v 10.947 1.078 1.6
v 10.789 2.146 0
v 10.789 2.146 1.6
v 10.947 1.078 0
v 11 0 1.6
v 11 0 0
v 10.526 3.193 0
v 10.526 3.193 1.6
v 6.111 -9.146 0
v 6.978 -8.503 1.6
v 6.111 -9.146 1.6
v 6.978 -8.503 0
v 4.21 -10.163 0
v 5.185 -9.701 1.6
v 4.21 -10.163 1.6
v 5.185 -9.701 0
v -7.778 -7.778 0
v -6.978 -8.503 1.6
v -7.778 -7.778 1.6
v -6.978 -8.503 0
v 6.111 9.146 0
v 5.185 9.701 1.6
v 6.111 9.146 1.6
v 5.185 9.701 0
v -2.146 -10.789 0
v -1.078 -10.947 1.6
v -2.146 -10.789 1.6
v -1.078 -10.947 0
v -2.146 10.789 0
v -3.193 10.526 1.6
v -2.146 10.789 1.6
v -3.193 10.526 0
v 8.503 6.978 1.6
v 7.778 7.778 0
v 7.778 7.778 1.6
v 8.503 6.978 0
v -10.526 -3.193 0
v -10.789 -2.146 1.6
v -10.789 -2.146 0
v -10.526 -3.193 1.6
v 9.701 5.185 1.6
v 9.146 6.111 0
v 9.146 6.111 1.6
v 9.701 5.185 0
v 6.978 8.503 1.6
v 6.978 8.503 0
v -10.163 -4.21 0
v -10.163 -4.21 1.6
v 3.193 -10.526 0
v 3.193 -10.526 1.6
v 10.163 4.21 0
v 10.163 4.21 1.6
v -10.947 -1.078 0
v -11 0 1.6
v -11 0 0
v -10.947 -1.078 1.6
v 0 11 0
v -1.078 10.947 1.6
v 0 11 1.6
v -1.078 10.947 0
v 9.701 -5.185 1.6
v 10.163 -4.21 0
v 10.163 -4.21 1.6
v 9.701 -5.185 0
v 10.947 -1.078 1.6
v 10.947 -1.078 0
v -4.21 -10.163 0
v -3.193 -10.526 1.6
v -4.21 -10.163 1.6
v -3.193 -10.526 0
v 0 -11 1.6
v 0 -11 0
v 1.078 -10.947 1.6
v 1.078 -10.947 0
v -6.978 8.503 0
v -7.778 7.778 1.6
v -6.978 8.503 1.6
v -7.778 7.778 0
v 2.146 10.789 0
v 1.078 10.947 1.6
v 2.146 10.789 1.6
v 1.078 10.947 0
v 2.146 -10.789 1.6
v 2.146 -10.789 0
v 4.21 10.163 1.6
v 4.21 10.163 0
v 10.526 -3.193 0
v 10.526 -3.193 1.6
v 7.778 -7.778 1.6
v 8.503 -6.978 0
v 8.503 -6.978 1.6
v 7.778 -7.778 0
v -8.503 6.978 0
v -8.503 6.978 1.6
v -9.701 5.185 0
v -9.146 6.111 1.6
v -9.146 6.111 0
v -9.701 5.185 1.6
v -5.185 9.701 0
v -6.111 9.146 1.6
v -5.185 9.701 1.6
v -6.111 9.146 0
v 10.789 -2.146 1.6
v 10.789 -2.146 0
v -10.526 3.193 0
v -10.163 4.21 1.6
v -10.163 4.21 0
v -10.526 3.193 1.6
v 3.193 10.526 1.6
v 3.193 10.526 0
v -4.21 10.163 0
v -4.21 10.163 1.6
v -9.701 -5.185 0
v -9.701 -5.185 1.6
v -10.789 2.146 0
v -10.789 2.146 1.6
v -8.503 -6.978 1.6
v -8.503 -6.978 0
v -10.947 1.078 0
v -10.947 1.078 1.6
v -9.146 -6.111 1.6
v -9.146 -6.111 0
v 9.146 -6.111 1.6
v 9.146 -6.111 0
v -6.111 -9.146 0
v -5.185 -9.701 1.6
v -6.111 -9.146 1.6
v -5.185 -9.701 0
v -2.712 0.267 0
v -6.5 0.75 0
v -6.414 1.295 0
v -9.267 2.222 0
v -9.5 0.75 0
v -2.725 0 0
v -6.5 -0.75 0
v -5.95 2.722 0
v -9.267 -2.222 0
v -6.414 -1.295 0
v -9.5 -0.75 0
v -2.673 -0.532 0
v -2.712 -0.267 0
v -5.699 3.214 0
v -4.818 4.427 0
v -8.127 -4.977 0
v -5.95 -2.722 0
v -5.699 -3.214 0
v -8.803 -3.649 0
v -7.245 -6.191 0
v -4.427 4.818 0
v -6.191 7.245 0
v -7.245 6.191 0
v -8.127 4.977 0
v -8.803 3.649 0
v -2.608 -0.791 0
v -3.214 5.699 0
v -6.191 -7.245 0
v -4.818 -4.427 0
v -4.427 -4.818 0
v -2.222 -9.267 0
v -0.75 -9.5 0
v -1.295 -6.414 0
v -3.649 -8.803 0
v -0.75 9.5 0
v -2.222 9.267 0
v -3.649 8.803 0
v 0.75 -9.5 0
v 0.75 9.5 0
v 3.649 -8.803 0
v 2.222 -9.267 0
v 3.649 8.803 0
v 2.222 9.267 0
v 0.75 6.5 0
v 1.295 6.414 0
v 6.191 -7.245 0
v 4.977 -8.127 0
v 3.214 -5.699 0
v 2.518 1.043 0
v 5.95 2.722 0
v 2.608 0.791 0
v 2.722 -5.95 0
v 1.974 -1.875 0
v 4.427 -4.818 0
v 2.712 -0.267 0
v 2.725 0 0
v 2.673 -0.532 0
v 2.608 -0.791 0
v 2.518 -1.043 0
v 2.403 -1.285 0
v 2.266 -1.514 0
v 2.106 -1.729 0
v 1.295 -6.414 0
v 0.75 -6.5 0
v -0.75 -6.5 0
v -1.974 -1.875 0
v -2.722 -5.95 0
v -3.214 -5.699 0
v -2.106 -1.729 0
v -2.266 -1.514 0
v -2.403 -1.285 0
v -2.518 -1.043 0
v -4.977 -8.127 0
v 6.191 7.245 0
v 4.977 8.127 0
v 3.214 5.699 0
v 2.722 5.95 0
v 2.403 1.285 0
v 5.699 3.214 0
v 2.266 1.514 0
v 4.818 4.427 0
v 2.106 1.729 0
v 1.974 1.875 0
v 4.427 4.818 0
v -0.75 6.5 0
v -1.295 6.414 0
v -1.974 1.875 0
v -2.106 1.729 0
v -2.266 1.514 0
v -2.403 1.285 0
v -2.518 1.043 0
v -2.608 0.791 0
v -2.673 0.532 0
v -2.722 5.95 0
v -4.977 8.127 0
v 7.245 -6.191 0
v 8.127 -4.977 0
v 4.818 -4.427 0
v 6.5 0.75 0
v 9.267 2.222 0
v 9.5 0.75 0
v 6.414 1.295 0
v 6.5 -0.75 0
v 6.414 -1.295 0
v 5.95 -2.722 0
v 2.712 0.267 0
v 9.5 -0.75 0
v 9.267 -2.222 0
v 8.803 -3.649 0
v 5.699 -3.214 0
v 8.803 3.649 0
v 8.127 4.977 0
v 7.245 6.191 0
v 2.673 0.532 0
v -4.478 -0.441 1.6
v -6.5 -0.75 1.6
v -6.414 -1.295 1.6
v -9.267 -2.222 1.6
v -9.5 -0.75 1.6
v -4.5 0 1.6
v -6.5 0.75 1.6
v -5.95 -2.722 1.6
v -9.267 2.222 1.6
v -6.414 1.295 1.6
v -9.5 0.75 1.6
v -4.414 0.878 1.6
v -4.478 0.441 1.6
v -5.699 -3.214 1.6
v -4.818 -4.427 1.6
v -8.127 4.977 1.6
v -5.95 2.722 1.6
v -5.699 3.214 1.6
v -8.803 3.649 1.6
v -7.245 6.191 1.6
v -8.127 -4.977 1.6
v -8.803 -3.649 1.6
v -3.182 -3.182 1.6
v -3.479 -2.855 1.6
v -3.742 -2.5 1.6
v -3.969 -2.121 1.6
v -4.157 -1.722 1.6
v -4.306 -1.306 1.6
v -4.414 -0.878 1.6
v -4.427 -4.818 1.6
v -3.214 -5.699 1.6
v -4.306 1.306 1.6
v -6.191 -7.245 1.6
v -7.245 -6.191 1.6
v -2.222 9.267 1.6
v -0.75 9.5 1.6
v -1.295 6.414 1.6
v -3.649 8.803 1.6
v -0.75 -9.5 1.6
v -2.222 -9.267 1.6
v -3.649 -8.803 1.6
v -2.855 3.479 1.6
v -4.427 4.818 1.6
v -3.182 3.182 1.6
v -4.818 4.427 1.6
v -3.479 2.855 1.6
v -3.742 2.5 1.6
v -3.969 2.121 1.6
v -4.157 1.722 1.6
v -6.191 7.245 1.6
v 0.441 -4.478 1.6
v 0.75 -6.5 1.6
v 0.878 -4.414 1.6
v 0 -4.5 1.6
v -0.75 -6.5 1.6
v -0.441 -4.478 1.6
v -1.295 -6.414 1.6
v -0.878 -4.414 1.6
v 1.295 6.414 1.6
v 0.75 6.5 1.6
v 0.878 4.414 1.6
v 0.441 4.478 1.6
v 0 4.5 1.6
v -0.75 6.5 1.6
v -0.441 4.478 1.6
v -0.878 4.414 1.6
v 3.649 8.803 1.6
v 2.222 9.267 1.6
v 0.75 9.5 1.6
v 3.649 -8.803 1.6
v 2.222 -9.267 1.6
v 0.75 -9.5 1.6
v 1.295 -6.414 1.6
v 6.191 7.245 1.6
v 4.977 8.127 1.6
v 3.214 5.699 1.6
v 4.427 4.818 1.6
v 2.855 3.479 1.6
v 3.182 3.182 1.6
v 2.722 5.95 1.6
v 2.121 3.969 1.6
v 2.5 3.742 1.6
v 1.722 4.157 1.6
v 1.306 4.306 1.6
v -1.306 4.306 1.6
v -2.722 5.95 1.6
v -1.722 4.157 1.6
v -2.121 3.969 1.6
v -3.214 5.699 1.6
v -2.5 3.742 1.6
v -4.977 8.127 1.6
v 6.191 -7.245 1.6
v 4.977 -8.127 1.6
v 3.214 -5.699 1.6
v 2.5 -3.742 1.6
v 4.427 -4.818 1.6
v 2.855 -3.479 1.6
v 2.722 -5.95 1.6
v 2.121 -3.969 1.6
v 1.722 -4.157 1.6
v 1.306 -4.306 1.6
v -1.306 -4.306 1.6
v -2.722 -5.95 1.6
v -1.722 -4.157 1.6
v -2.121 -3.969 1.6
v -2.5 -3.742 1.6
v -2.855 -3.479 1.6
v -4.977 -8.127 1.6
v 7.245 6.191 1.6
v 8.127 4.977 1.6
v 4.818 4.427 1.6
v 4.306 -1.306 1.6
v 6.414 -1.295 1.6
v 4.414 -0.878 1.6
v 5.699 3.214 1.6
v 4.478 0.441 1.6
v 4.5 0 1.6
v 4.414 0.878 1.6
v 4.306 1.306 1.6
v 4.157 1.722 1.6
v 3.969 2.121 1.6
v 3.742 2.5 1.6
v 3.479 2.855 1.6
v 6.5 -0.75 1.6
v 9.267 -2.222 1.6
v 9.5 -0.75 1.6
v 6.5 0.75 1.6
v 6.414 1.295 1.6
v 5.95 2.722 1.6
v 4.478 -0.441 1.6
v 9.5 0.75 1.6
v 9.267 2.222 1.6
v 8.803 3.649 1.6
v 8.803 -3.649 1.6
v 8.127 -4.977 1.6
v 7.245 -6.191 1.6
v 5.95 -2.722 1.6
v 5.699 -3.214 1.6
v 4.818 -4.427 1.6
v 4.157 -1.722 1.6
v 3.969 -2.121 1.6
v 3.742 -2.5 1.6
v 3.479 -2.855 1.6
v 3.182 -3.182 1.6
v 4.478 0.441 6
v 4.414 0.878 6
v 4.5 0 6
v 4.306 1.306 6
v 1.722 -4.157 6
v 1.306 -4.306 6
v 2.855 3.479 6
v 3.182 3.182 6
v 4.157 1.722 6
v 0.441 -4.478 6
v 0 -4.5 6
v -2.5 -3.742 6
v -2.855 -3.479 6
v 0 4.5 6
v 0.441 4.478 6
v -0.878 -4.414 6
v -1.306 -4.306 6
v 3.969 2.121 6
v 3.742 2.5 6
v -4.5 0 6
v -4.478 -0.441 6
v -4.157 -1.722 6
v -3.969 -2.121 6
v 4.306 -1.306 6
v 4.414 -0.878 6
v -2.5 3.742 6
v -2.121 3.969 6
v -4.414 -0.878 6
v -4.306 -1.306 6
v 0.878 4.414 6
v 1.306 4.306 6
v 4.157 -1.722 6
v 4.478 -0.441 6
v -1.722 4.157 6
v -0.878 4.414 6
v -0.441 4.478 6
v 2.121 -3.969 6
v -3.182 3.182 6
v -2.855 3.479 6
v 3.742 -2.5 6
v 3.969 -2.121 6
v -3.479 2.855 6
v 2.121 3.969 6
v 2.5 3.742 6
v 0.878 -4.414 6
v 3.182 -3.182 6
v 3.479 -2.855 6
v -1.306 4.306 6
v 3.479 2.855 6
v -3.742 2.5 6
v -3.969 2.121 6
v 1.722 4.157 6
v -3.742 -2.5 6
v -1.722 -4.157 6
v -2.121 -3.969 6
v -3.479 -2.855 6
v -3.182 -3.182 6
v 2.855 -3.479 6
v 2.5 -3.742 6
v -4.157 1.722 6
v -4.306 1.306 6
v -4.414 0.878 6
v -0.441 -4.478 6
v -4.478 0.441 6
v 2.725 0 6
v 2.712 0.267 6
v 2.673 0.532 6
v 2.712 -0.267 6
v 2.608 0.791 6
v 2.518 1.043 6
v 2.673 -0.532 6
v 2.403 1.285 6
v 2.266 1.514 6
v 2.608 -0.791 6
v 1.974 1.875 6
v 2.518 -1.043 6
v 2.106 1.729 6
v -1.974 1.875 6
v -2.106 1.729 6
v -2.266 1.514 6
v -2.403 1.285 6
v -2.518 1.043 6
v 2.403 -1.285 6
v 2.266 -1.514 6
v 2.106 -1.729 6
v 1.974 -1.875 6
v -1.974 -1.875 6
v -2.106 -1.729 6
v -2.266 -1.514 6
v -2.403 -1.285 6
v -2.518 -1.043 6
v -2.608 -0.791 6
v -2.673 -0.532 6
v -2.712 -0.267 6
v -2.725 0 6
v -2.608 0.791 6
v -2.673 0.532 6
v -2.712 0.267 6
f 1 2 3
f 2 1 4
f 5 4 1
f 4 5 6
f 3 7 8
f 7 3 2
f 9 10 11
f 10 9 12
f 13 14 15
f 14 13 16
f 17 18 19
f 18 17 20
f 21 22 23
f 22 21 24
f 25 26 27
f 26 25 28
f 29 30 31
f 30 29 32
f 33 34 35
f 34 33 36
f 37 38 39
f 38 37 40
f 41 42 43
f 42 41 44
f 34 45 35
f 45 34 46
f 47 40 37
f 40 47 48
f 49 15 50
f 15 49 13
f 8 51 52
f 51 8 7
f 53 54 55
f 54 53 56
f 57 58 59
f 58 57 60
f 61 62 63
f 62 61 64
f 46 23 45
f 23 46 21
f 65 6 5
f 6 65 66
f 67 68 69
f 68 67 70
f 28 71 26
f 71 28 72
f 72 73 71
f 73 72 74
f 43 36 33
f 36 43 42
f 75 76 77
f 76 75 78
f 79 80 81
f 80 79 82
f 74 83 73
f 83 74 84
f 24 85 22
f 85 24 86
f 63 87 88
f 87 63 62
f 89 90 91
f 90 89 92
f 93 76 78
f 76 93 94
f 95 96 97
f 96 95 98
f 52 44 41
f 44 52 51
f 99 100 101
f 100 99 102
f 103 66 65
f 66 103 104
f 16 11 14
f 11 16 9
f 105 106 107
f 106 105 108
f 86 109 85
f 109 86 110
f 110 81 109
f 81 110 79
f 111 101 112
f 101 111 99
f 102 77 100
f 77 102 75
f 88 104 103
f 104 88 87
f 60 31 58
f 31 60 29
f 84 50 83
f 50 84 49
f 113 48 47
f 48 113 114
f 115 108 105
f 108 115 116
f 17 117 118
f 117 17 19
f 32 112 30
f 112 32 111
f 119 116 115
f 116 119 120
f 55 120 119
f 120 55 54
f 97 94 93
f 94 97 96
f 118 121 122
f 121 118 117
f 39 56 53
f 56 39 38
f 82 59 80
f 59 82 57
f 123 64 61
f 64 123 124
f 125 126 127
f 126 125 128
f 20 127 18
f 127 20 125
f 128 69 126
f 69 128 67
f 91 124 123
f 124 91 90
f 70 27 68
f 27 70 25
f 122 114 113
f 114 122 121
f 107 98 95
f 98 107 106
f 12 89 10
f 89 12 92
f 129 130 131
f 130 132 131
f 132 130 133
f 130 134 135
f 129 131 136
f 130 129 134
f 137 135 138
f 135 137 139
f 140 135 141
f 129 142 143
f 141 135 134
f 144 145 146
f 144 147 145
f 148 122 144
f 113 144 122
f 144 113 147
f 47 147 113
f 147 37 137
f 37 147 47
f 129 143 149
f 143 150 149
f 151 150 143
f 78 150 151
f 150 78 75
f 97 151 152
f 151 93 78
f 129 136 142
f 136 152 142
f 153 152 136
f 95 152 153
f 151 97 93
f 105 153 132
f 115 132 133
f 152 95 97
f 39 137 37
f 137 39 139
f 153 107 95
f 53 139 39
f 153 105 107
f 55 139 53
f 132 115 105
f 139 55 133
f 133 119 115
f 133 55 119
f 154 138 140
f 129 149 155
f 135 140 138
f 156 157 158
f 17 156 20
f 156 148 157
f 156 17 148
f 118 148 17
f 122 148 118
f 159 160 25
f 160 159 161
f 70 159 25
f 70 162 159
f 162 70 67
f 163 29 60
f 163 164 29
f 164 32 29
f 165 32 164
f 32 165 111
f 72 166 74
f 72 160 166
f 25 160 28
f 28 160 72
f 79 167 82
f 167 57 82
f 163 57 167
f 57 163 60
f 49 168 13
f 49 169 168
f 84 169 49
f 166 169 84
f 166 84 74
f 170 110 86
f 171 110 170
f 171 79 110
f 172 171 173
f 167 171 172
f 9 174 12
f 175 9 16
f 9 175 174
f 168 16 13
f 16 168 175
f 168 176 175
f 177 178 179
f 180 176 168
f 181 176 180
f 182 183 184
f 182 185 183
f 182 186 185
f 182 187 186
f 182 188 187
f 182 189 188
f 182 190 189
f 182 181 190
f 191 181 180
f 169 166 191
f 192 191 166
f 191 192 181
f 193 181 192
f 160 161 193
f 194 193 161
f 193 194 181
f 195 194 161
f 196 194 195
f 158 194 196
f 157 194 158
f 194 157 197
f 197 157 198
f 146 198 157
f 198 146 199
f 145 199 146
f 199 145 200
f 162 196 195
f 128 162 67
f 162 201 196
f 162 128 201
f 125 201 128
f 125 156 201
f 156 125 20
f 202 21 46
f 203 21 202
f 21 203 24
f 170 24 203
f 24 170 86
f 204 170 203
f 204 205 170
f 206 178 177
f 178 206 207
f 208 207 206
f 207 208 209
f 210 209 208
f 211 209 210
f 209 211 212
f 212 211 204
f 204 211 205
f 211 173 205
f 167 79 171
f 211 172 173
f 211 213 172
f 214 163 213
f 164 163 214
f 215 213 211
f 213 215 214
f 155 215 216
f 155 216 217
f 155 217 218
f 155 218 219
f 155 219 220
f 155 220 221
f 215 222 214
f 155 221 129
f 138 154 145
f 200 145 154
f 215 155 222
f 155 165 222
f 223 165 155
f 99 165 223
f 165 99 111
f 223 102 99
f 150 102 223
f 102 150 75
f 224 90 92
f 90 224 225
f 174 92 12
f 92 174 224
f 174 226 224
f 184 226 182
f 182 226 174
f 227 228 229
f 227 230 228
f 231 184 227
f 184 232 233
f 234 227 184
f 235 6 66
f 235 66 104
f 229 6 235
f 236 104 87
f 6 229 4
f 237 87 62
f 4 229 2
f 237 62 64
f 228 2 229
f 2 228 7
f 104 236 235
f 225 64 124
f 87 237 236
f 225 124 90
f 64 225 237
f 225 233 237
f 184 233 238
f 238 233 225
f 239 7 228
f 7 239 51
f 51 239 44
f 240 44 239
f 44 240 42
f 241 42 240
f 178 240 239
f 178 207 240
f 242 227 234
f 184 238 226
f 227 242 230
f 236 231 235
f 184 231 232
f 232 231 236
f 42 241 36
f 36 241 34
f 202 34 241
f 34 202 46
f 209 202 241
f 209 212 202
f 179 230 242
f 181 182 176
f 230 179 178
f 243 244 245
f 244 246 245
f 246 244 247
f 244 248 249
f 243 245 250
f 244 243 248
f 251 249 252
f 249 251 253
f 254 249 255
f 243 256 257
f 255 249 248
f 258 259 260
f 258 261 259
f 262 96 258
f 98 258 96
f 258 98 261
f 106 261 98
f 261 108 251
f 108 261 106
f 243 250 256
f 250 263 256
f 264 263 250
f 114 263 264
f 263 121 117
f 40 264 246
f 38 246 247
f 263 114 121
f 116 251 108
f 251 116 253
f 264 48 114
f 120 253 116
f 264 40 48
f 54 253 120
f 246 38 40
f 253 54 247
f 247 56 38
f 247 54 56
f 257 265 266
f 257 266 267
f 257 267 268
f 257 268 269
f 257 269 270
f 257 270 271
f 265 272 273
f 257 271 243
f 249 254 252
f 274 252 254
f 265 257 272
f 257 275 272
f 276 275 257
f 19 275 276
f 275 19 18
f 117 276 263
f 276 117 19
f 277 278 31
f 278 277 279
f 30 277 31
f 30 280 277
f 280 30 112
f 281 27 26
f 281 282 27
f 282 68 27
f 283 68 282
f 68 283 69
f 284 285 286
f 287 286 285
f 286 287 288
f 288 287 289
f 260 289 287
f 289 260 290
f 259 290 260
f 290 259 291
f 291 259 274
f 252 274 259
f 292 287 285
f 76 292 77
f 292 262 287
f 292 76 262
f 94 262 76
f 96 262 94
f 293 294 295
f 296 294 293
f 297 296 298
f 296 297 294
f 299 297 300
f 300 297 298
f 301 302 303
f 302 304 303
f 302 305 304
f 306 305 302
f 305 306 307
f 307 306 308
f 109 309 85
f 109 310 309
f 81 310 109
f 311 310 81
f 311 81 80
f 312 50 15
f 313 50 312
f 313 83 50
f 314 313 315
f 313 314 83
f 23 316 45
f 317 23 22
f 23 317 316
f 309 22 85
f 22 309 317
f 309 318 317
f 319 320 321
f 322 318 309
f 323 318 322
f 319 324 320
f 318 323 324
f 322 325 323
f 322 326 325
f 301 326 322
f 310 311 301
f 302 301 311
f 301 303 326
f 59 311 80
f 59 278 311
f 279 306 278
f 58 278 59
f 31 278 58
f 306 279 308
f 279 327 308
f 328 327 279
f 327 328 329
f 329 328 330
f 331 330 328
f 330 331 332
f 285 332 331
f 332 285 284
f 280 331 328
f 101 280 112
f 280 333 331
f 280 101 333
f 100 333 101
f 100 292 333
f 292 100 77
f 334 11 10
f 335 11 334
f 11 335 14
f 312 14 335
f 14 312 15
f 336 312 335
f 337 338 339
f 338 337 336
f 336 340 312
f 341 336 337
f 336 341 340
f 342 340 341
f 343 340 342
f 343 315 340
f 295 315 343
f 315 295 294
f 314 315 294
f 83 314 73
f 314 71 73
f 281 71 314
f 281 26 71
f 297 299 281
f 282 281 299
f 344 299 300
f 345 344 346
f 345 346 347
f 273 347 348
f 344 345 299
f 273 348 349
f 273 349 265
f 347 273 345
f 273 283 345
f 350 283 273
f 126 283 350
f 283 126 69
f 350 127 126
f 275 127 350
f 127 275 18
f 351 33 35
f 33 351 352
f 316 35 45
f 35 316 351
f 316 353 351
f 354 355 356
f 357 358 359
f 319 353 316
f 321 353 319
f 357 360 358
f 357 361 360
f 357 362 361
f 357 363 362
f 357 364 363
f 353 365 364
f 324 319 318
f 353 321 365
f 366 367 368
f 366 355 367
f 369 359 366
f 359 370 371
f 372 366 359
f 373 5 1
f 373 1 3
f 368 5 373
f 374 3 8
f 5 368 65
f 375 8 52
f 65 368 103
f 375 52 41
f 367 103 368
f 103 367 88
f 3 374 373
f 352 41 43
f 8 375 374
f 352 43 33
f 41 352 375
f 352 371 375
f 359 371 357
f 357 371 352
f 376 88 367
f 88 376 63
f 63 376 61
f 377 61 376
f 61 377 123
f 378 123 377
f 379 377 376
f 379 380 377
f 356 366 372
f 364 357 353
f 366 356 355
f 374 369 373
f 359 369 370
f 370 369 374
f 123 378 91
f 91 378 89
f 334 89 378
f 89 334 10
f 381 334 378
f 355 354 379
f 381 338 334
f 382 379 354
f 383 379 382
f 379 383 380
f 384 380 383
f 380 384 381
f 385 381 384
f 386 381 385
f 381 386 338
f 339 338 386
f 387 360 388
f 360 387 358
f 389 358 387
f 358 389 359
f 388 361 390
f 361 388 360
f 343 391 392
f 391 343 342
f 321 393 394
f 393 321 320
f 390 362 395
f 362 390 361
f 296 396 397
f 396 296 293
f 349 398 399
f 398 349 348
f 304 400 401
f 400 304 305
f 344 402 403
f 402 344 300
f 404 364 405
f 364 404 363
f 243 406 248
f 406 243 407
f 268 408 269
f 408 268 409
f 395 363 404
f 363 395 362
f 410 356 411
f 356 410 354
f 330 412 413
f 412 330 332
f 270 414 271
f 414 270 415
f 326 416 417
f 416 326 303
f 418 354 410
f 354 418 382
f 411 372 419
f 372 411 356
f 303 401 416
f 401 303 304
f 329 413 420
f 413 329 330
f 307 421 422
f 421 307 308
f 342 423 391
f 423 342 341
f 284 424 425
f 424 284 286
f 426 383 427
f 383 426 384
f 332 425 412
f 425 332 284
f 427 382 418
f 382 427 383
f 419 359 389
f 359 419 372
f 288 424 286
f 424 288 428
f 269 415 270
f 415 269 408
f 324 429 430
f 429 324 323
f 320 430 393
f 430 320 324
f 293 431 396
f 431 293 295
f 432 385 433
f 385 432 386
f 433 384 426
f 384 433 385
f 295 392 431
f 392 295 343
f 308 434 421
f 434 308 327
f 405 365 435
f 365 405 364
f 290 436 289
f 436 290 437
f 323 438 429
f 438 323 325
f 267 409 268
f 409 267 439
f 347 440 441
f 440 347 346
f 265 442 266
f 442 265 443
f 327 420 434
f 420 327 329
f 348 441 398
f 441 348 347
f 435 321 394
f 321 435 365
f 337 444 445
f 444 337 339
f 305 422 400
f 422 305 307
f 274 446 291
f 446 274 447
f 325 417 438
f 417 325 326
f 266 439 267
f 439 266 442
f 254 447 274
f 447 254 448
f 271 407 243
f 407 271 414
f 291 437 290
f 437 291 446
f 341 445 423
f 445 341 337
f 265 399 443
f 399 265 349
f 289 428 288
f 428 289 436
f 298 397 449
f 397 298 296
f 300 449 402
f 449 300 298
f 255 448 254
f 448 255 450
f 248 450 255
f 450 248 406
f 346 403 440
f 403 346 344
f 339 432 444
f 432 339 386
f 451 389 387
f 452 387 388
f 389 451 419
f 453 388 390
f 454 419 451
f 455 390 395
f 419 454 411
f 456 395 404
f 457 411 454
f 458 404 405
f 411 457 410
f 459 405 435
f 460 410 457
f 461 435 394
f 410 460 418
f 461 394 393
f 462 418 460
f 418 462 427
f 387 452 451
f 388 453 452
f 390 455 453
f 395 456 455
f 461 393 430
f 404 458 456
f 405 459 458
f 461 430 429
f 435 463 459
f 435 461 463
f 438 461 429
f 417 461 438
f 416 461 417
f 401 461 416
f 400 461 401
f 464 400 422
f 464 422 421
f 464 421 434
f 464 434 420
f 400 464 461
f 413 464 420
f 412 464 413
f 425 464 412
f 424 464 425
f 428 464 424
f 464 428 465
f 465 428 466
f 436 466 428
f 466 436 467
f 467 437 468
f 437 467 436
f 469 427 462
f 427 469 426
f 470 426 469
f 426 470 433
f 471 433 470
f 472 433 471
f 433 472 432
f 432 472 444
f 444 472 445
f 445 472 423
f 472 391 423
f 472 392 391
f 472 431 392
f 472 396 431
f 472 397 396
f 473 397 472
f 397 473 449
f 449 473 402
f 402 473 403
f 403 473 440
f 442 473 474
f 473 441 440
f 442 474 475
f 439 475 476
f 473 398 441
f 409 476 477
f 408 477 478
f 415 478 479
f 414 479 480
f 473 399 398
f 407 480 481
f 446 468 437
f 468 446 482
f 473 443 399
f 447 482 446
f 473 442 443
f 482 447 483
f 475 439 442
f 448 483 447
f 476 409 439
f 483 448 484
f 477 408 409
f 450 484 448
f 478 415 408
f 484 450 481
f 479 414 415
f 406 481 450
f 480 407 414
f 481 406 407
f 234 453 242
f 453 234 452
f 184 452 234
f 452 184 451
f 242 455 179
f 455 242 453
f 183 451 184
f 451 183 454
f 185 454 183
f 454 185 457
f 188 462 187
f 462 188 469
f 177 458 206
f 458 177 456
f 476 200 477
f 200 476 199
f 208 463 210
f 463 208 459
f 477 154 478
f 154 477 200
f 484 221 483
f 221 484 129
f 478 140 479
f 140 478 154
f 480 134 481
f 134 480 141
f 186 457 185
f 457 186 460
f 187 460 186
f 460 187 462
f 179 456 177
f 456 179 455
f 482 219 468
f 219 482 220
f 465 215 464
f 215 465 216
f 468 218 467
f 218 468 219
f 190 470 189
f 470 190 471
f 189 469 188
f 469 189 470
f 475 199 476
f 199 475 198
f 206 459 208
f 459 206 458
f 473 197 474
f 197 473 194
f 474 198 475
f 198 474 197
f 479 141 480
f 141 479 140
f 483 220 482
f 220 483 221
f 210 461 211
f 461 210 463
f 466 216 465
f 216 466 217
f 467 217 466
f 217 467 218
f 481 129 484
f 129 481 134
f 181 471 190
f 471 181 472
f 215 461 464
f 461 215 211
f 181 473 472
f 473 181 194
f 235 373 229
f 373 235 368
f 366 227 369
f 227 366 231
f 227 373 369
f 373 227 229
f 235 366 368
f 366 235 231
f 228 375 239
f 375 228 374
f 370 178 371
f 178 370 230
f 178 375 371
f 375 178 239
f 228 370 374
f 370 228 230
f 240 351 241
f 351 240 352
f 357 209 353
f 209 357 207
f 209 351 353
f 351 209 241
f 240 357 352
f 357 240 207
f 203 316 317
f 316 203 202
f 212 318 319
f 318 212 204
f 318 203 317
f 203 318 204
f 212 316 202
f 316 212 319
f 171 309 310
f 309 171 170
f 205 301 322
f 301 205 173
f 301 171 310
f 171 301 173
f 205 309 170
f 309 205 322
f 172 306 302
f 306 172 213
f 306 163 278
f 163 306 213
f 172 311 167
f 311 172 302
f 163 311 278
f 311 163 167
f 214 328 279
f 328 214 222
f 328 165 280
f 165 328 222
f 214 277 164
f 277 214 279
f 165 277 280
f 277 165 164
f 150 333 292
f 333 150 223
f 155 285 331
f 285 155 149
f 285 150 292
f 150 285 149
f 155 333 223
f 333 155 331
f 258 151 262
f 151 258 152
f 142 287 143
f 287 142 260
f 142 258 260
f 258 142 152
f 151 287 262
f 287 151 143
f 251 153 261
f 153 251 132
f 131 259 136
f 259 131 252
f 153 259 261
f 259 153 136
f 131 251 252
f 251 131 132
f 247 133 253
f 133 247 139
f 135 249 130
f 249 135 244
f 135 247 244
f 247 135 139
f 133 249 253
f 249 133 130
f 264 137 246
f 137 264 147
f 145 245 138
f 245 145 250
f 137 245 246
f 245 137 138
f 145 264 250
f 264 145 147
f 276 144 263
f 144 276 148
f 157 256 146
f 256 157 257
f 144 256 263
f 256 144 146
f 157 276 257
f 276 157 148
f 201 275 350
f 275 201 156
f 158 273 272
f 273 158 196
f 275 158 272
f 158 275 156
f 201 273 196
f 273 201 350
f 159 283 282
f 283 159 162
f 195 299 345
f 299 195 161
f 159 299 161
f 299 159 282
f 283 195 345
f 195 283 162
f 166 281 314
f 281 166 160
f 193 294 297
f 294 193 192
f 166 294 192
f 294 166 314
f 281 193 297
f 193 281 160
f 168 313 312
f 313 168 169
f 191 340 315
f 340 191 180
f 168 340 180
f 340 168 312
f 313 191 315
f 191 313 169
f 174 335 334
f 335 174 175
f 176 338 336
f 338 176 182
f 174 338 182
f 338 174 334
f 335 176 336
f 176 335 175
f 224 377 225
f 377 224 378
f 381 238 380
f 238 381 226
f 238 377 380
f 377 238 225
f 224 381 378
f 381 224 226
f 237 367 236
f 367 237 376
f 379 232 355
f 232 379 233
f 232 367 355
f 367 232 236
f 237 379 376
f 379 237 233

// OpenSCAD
// file: ../lib.scad
// Solar Rover - shared helper modules
include <config.scad>

// Rounded rectangle plate, centred in XY, sitting on Z=0.
module rbox(size, r=4) {
    x = size[0]; y = size[1]; z = size[2];
    hull() for (sx=[-1,1], sy=[-1,1])
        translate([sx*(x/2-r), sy*(y/2-r), 0]) cylinder(r=r, h=z);
}

// Vertical hole through everything (subtract). Centred on the origin.
module hole(d, h=200) { translate([0,0,-h/2]) cylinder(d=d, h=h); }

// Heat-set insert pocket opening upward at Z=top.
module insert_m3(top) { translate([0,0,top-m3_insert_h]) cylinder(d=m3_insert_d, h=m3_insert_h+0.01); }
module insert_m25(top) { translate([0,0,top-4.5]) cylinder(d=m25_insert_d, h=4.51); }

// Boss for an insert: cylinder from z0 to z1, with insert pocket at the top.
module insert_boss_m3(z0, z1, od=8) {
    difference() {
        translate([0,0,z0]) cylinder(d=od, h=z1-z0);
        insert_m3(z1);
    }
}

// Slot of length l (centre-to-centre) along X, diameter d.
module slot(l, d, h=200) {
    hull() for (sx=[-1,1]) translate([sx*l/2,0,-h/2]) cylinder(d=d, h=h);
}

// Counterbored M3 clearance hole, head at Z=top going down.
module m3_cbore(top, depth=m3_head_h) {
    hole(m3_clear);
    translate([0,0,top-depth]) cylinder(d=m3_head_d, h=depth+50);
}

// Captive hex nut pocket, opening at Z=z (nut goes in from that face).
module m3_nut_pocket(z, depth=m3_nut_h+0.4) {
    translate([0,0,z-depth]) cylinder(d=m3_nut_af/cos(30), h=depth+0.01, $fn=6);
}

// Pair of zip-tie slots (for modules without mounting holes), spaced s apart along X.
module zip_slots(s=30, w=4, l=2.2) {
    for (sx=[-1,1]) translate([sx*s/2,0,0]) cube([l, w, 50], center=true);
}

// D-shaped bore for TT motor shafts.
module d_bore(h=50, extra=0) {
    intersection() {
        cylinder(d=tt_shaft_d+extra, h=h);
        translate([-(tt_shaft_d+extra)/2, -(tt_shaft_flat+extra)/2, 0])
            cube([tt_shaft_d+extra, tt_shaft_flat+extra, h]);
    }
}

// Simple spur gear (trapezoid teeth), module m, z teeth, thickness t. Good enough
// for a slow servo gripper; not a precision involute.
module spur_gear(m=1.25, z=16, t=6, bore=0) {
    rp = m*z/2; ra = rp + m; rf = rp - 1.25*m;
    difference() {
        linear_extrude(t) union() {
            circle(r=rf, $fn=z*4);
            for (i=[0:z-1]) rotate(i*360/z)
                polygon([[rf*cos(-90/z*1.1), rf*sin(-90/z*1.1)],
                         [ra*cos(-90/z*0.45), ra*sin(-90/z*0.45)],
                         [ra*cos( 90/z*0.45), ra*sin( 90/z*0.45)],
                         [rf*cos( 90/z*1.1), rf*sin( 90/z*1.1)]]);
        }
        if (bore > 0) hole(bore);
    }
}

// Servo pocket for an MG996R lying with its output axis along +Z.
// Case centred so the OUTPUT SHAFT is at the origin; case top at Z=0.
module mg996_case_neg(extra=tol) {
    translate([-mg996_shaft_off-extra, -mg996_w/2-extra, -mg996_h-extra])
        cube([mg996_l+2*extra, mg996_w+2*extra, mg996_h+extra+0.01]);
}
module mg996_flange_holes(d=m3_clear, h=60) {
    cx = mg996_l/2 - mg996_shaft_off;
    for (sx=[-1,1], sy=[-1,1])
        translate([cx+sx*mg996_hole_dx/2, sy*mg996_hole_dy/2, -h/2]) cylinder(d=d, h=h);
}
module mg90_case_neg(extra=tol) {
    translate([-mg90_shaft_off-extra, -mg90_w/2-extra, -mg90_h-extra])
        cube([mg90_l+2*extra, mg90_w+2*extra, mg90_h+extra+0.01]);
}
module mg90_flange_holes(d=m2_pilot, h=60) {
    cx = mg90_l/2 - mg90_shaft_off;
    for (sx=[-1,1]) translate([cx+sx*mg90_hole_dx/2, 0, -h/2]) cylinder(d=d, h=h);
}
// Round MG996R horn screw pattern (4 holes) + centre relief.
module mg996_horn_holes(d=m3_clear) {
    hole(9);
    for (a=[0:90:270]) rotate(a) translate([mg996_horn_hole_r,0,0]) hole(d);
}
// file: ../config.scad
// Solar Rover - shared dimensions (all mm)
// Coordinate system: X = forward, Y = left, Z = up. Origin = deck centre, ground at Z=0.
//
// Values marked MEASURE come from typical datasheets/clones and vary between
// suppliers. Measure your parts with calipers and edit them here before printing;
// every part reads its dimensions from this file.

$fn = 64;

// ---------- print / fit ----------
tol        = 0.25;   // general clearance per side
wall       = 2.4;    // default wall (6 perimeters at 0.4 mm nozzle)

// ---------- fasteners ----------
m3_clear     = 3.4;   // M3 clearance hole
m3_insert_d  = 4.1;   // hole for M3x5x4 brass heat-set insert (OD ~4.6)
m3_insert_h  = 5.5;   // insert hole depth
m3_head_d    = 6.2;   // socket head counterbore
m3_head_h    = 3.2;
m3_nut_af    = 5.6;   // nut across flats (+clearance)
m3_nut_h     = 2.6;
m25_clear    = 2.9;
m25_insert_d = 3.5;   // M2.5 insert hole (OD ~4.0)
m2_clear     = 2.4;
m2_pilot     = 1.7;   // pilot hole for M2 thread-forming screw

// ---------- deck ----------
deck_l     = 300;     // printed as two 150 mm halves
deck_w     = 146;
deck_t     = 4;
rib_h      = 8;
rib_w      = 2.4;
flange_h   = 14;      // joint flange (bolts the halves together)
flange_t   = 5;

// ---------- drive ----------
wheel_d       = 65;
wheel_w       = 26;
axle_z        = wheel_d/2;    // axle height above ground
axle_x        = 100;          // front axle at +axle_x, rear at -axle_x
// TT gear motor (dual-shaft, 1:48). MEASURE.
tt_body_l     = 64;           // along X (gearbox + motor can)
tt_body_t     = 22.5;         // along Y (shaft direction)
tt_body_h     = 18.8;         // along Z
tt_shaft_from_end = 11.3;     // shaft centre to gearbox front end
tt_shaft_d    = 5.4;          // D-shaft across round
tt_shaft_flat = 3.7;          // D-shaft across flats
tt_shaft_len  = 9;            // per side, beyond the body face
// two through-holes parallel to the shaft, positions relative to shaft centre [x, z]. MEASURE.
tt_holes      = [[-20.0, 5.5], [-20.0, -5.5]];
motor_outer_y = 72;           // motor face nearest the wheel
clamp_t       = 3;            // clamp plate thickness
deck_bottom_z = axle_z + tt_body_h/2 + clamp_t;   // 44.6
deck_top_z    = deck_bottom_z + deck_t;

// ---------- encoder ----------
enc_slots   = 20;
enc_disc_d  = 22;
enc_disc_t  = 1.6;

// ---------- turret / arm ----------
turret_x      = 108;
turret_d      = 84;           // base OD; top plate skirt overlaps it
turret_h      = 48;           // fixed base height above deck (servo hangs inside)
turret_deck_r = 30;           // 4x M3 at 45/135/225/315 deg: turret base to deck
turret_bolts  = [[20,28],[-20,28],[20,-28],[-20,-28]];  // module interface on the turret top (4x M3)
shoulder_z    = 45;           // shoulder axis above the turret top plate
// MG996R servo. MEASURE.
mg996_l   = 40.7;  mg996_w = 19.7;  mg996_h = 37.0;   // case (h = to top of case)
mg996_flange_l = 54.5; mg996_flange_z = 27.5;  mg996_flange_t = 2.5;
mg996_hole_dx = 49.5; mg996_hole_dy = 10.0; mg996_hole_d = 4.5;
mg996_shaft_off = 10.0;       // output shaft centre from case end
mg996_spline_h  = 6.0;        // case top to horn face
mg996_horn_d    = 22;         // round metal horn
mg996_horn_hole_r = 7.5;      // horn screw circle radius (MEASURE: usually 4 holes)
// MG90S servo. MEASURE.
mg90_l = 22.8; mg90_w = 12.2; mg90_h = 22.7;
mg90_flange_l = 32.5; mg90_flange_z = 16.0; mg90_flange_t = 2.5;
mg90_hole_dx = 27.6; mg90_hole_d = 2.0;
mg90_shaft_off = 6.0;
mg90_spline_h = 5.0;
mg90_horn_d = 7;              // horn hub (single-arm horn)

link_upper = 100;   // shoulder -> elbow
link_fore  = 90;    // elbow -> wrist
link_hand  = 70;    // wrist -> fingertip

// ---------- power / electronics ----------
cell_holder = [77, 80, 21];   // 4x18650 holder footprint. MEASURE.
pi0_holes   = [58, 23];       // Raspberry Pi Zero 2 W, M2.5
pca_holes   = [55.9, 19.0];   // Adafruit-style PCA9685, M2.5. MEASURE (clones vary)
esp_exp_holes = [47, 70];     // ESP32 38-pin screw-terminal expansion board (77x54 mm), M3. MEASURE.
cradle_tb6612 = [20.5, 20.5];  // TB6612FNG breakout board outline. MEASURE.
cradle_mp1584 = [22.4, 17.0];  // MP1584 mini buck outline. MEASURE.
module_slot_w = 2.6;          // module-plate slots: M2/M2.5 screw + nut, or a 2.5 mm zip tie
tray_standoff_h = 32;         // power tray top to logic tray underside
// charge tray: a slotted plate on 4 legs over the battery holder
charge_tray_c    = [-106, 0];         // centre on the deck (same as the battery holder)
charge_tray_size = [76, 102];         // X, Y
charge_tray_z    = 24;                // deck top to plate underside (holder is 21 mm tall)
charge_tray_legs = [for (x=[-34,28], sy=[-1,1]) [x, sy*46]];   // relative to the centre; the front pair clears the motor-clamp inserts

// ---------- body / solar ----------
panel     = [110, 136, 3];    // 6V 2W panel: X, Y, thickness. MEASURE.
roof_post_h = 75;             // deck top to roof tray underside (room for plugged-in jumpers)
tray_frame  = 4;
roof_front_x = 60;            // front tray spans -60..60, rear tray -180..-60
// main file
// Encoder disc (print 4). Black PLA/PETG works best for the optical sensor.
// Presses onto the TT motor's INNER shaft; 20 slots = 20 counts per wheel turn
// on one edge (40 if the firmware counts both edges, which it does).
include <../config.scad>
use <../lib.scad>

difference() {
    union() {
        cylinder(d=enc_disc_d, h=enc_disc_t);
        cylinder(d=9, h=6);
    }
    translate([0,0,-1]) d_bore(10, 0.05);
    for (i=[0:enc_slots-1]) rotate(i*360/enc_slots)
        translate([enc_disc_d/2-1.5-3.0, -0.75, -1]) cube([3.0, 1.5, enc_disc_t+2]);
}
